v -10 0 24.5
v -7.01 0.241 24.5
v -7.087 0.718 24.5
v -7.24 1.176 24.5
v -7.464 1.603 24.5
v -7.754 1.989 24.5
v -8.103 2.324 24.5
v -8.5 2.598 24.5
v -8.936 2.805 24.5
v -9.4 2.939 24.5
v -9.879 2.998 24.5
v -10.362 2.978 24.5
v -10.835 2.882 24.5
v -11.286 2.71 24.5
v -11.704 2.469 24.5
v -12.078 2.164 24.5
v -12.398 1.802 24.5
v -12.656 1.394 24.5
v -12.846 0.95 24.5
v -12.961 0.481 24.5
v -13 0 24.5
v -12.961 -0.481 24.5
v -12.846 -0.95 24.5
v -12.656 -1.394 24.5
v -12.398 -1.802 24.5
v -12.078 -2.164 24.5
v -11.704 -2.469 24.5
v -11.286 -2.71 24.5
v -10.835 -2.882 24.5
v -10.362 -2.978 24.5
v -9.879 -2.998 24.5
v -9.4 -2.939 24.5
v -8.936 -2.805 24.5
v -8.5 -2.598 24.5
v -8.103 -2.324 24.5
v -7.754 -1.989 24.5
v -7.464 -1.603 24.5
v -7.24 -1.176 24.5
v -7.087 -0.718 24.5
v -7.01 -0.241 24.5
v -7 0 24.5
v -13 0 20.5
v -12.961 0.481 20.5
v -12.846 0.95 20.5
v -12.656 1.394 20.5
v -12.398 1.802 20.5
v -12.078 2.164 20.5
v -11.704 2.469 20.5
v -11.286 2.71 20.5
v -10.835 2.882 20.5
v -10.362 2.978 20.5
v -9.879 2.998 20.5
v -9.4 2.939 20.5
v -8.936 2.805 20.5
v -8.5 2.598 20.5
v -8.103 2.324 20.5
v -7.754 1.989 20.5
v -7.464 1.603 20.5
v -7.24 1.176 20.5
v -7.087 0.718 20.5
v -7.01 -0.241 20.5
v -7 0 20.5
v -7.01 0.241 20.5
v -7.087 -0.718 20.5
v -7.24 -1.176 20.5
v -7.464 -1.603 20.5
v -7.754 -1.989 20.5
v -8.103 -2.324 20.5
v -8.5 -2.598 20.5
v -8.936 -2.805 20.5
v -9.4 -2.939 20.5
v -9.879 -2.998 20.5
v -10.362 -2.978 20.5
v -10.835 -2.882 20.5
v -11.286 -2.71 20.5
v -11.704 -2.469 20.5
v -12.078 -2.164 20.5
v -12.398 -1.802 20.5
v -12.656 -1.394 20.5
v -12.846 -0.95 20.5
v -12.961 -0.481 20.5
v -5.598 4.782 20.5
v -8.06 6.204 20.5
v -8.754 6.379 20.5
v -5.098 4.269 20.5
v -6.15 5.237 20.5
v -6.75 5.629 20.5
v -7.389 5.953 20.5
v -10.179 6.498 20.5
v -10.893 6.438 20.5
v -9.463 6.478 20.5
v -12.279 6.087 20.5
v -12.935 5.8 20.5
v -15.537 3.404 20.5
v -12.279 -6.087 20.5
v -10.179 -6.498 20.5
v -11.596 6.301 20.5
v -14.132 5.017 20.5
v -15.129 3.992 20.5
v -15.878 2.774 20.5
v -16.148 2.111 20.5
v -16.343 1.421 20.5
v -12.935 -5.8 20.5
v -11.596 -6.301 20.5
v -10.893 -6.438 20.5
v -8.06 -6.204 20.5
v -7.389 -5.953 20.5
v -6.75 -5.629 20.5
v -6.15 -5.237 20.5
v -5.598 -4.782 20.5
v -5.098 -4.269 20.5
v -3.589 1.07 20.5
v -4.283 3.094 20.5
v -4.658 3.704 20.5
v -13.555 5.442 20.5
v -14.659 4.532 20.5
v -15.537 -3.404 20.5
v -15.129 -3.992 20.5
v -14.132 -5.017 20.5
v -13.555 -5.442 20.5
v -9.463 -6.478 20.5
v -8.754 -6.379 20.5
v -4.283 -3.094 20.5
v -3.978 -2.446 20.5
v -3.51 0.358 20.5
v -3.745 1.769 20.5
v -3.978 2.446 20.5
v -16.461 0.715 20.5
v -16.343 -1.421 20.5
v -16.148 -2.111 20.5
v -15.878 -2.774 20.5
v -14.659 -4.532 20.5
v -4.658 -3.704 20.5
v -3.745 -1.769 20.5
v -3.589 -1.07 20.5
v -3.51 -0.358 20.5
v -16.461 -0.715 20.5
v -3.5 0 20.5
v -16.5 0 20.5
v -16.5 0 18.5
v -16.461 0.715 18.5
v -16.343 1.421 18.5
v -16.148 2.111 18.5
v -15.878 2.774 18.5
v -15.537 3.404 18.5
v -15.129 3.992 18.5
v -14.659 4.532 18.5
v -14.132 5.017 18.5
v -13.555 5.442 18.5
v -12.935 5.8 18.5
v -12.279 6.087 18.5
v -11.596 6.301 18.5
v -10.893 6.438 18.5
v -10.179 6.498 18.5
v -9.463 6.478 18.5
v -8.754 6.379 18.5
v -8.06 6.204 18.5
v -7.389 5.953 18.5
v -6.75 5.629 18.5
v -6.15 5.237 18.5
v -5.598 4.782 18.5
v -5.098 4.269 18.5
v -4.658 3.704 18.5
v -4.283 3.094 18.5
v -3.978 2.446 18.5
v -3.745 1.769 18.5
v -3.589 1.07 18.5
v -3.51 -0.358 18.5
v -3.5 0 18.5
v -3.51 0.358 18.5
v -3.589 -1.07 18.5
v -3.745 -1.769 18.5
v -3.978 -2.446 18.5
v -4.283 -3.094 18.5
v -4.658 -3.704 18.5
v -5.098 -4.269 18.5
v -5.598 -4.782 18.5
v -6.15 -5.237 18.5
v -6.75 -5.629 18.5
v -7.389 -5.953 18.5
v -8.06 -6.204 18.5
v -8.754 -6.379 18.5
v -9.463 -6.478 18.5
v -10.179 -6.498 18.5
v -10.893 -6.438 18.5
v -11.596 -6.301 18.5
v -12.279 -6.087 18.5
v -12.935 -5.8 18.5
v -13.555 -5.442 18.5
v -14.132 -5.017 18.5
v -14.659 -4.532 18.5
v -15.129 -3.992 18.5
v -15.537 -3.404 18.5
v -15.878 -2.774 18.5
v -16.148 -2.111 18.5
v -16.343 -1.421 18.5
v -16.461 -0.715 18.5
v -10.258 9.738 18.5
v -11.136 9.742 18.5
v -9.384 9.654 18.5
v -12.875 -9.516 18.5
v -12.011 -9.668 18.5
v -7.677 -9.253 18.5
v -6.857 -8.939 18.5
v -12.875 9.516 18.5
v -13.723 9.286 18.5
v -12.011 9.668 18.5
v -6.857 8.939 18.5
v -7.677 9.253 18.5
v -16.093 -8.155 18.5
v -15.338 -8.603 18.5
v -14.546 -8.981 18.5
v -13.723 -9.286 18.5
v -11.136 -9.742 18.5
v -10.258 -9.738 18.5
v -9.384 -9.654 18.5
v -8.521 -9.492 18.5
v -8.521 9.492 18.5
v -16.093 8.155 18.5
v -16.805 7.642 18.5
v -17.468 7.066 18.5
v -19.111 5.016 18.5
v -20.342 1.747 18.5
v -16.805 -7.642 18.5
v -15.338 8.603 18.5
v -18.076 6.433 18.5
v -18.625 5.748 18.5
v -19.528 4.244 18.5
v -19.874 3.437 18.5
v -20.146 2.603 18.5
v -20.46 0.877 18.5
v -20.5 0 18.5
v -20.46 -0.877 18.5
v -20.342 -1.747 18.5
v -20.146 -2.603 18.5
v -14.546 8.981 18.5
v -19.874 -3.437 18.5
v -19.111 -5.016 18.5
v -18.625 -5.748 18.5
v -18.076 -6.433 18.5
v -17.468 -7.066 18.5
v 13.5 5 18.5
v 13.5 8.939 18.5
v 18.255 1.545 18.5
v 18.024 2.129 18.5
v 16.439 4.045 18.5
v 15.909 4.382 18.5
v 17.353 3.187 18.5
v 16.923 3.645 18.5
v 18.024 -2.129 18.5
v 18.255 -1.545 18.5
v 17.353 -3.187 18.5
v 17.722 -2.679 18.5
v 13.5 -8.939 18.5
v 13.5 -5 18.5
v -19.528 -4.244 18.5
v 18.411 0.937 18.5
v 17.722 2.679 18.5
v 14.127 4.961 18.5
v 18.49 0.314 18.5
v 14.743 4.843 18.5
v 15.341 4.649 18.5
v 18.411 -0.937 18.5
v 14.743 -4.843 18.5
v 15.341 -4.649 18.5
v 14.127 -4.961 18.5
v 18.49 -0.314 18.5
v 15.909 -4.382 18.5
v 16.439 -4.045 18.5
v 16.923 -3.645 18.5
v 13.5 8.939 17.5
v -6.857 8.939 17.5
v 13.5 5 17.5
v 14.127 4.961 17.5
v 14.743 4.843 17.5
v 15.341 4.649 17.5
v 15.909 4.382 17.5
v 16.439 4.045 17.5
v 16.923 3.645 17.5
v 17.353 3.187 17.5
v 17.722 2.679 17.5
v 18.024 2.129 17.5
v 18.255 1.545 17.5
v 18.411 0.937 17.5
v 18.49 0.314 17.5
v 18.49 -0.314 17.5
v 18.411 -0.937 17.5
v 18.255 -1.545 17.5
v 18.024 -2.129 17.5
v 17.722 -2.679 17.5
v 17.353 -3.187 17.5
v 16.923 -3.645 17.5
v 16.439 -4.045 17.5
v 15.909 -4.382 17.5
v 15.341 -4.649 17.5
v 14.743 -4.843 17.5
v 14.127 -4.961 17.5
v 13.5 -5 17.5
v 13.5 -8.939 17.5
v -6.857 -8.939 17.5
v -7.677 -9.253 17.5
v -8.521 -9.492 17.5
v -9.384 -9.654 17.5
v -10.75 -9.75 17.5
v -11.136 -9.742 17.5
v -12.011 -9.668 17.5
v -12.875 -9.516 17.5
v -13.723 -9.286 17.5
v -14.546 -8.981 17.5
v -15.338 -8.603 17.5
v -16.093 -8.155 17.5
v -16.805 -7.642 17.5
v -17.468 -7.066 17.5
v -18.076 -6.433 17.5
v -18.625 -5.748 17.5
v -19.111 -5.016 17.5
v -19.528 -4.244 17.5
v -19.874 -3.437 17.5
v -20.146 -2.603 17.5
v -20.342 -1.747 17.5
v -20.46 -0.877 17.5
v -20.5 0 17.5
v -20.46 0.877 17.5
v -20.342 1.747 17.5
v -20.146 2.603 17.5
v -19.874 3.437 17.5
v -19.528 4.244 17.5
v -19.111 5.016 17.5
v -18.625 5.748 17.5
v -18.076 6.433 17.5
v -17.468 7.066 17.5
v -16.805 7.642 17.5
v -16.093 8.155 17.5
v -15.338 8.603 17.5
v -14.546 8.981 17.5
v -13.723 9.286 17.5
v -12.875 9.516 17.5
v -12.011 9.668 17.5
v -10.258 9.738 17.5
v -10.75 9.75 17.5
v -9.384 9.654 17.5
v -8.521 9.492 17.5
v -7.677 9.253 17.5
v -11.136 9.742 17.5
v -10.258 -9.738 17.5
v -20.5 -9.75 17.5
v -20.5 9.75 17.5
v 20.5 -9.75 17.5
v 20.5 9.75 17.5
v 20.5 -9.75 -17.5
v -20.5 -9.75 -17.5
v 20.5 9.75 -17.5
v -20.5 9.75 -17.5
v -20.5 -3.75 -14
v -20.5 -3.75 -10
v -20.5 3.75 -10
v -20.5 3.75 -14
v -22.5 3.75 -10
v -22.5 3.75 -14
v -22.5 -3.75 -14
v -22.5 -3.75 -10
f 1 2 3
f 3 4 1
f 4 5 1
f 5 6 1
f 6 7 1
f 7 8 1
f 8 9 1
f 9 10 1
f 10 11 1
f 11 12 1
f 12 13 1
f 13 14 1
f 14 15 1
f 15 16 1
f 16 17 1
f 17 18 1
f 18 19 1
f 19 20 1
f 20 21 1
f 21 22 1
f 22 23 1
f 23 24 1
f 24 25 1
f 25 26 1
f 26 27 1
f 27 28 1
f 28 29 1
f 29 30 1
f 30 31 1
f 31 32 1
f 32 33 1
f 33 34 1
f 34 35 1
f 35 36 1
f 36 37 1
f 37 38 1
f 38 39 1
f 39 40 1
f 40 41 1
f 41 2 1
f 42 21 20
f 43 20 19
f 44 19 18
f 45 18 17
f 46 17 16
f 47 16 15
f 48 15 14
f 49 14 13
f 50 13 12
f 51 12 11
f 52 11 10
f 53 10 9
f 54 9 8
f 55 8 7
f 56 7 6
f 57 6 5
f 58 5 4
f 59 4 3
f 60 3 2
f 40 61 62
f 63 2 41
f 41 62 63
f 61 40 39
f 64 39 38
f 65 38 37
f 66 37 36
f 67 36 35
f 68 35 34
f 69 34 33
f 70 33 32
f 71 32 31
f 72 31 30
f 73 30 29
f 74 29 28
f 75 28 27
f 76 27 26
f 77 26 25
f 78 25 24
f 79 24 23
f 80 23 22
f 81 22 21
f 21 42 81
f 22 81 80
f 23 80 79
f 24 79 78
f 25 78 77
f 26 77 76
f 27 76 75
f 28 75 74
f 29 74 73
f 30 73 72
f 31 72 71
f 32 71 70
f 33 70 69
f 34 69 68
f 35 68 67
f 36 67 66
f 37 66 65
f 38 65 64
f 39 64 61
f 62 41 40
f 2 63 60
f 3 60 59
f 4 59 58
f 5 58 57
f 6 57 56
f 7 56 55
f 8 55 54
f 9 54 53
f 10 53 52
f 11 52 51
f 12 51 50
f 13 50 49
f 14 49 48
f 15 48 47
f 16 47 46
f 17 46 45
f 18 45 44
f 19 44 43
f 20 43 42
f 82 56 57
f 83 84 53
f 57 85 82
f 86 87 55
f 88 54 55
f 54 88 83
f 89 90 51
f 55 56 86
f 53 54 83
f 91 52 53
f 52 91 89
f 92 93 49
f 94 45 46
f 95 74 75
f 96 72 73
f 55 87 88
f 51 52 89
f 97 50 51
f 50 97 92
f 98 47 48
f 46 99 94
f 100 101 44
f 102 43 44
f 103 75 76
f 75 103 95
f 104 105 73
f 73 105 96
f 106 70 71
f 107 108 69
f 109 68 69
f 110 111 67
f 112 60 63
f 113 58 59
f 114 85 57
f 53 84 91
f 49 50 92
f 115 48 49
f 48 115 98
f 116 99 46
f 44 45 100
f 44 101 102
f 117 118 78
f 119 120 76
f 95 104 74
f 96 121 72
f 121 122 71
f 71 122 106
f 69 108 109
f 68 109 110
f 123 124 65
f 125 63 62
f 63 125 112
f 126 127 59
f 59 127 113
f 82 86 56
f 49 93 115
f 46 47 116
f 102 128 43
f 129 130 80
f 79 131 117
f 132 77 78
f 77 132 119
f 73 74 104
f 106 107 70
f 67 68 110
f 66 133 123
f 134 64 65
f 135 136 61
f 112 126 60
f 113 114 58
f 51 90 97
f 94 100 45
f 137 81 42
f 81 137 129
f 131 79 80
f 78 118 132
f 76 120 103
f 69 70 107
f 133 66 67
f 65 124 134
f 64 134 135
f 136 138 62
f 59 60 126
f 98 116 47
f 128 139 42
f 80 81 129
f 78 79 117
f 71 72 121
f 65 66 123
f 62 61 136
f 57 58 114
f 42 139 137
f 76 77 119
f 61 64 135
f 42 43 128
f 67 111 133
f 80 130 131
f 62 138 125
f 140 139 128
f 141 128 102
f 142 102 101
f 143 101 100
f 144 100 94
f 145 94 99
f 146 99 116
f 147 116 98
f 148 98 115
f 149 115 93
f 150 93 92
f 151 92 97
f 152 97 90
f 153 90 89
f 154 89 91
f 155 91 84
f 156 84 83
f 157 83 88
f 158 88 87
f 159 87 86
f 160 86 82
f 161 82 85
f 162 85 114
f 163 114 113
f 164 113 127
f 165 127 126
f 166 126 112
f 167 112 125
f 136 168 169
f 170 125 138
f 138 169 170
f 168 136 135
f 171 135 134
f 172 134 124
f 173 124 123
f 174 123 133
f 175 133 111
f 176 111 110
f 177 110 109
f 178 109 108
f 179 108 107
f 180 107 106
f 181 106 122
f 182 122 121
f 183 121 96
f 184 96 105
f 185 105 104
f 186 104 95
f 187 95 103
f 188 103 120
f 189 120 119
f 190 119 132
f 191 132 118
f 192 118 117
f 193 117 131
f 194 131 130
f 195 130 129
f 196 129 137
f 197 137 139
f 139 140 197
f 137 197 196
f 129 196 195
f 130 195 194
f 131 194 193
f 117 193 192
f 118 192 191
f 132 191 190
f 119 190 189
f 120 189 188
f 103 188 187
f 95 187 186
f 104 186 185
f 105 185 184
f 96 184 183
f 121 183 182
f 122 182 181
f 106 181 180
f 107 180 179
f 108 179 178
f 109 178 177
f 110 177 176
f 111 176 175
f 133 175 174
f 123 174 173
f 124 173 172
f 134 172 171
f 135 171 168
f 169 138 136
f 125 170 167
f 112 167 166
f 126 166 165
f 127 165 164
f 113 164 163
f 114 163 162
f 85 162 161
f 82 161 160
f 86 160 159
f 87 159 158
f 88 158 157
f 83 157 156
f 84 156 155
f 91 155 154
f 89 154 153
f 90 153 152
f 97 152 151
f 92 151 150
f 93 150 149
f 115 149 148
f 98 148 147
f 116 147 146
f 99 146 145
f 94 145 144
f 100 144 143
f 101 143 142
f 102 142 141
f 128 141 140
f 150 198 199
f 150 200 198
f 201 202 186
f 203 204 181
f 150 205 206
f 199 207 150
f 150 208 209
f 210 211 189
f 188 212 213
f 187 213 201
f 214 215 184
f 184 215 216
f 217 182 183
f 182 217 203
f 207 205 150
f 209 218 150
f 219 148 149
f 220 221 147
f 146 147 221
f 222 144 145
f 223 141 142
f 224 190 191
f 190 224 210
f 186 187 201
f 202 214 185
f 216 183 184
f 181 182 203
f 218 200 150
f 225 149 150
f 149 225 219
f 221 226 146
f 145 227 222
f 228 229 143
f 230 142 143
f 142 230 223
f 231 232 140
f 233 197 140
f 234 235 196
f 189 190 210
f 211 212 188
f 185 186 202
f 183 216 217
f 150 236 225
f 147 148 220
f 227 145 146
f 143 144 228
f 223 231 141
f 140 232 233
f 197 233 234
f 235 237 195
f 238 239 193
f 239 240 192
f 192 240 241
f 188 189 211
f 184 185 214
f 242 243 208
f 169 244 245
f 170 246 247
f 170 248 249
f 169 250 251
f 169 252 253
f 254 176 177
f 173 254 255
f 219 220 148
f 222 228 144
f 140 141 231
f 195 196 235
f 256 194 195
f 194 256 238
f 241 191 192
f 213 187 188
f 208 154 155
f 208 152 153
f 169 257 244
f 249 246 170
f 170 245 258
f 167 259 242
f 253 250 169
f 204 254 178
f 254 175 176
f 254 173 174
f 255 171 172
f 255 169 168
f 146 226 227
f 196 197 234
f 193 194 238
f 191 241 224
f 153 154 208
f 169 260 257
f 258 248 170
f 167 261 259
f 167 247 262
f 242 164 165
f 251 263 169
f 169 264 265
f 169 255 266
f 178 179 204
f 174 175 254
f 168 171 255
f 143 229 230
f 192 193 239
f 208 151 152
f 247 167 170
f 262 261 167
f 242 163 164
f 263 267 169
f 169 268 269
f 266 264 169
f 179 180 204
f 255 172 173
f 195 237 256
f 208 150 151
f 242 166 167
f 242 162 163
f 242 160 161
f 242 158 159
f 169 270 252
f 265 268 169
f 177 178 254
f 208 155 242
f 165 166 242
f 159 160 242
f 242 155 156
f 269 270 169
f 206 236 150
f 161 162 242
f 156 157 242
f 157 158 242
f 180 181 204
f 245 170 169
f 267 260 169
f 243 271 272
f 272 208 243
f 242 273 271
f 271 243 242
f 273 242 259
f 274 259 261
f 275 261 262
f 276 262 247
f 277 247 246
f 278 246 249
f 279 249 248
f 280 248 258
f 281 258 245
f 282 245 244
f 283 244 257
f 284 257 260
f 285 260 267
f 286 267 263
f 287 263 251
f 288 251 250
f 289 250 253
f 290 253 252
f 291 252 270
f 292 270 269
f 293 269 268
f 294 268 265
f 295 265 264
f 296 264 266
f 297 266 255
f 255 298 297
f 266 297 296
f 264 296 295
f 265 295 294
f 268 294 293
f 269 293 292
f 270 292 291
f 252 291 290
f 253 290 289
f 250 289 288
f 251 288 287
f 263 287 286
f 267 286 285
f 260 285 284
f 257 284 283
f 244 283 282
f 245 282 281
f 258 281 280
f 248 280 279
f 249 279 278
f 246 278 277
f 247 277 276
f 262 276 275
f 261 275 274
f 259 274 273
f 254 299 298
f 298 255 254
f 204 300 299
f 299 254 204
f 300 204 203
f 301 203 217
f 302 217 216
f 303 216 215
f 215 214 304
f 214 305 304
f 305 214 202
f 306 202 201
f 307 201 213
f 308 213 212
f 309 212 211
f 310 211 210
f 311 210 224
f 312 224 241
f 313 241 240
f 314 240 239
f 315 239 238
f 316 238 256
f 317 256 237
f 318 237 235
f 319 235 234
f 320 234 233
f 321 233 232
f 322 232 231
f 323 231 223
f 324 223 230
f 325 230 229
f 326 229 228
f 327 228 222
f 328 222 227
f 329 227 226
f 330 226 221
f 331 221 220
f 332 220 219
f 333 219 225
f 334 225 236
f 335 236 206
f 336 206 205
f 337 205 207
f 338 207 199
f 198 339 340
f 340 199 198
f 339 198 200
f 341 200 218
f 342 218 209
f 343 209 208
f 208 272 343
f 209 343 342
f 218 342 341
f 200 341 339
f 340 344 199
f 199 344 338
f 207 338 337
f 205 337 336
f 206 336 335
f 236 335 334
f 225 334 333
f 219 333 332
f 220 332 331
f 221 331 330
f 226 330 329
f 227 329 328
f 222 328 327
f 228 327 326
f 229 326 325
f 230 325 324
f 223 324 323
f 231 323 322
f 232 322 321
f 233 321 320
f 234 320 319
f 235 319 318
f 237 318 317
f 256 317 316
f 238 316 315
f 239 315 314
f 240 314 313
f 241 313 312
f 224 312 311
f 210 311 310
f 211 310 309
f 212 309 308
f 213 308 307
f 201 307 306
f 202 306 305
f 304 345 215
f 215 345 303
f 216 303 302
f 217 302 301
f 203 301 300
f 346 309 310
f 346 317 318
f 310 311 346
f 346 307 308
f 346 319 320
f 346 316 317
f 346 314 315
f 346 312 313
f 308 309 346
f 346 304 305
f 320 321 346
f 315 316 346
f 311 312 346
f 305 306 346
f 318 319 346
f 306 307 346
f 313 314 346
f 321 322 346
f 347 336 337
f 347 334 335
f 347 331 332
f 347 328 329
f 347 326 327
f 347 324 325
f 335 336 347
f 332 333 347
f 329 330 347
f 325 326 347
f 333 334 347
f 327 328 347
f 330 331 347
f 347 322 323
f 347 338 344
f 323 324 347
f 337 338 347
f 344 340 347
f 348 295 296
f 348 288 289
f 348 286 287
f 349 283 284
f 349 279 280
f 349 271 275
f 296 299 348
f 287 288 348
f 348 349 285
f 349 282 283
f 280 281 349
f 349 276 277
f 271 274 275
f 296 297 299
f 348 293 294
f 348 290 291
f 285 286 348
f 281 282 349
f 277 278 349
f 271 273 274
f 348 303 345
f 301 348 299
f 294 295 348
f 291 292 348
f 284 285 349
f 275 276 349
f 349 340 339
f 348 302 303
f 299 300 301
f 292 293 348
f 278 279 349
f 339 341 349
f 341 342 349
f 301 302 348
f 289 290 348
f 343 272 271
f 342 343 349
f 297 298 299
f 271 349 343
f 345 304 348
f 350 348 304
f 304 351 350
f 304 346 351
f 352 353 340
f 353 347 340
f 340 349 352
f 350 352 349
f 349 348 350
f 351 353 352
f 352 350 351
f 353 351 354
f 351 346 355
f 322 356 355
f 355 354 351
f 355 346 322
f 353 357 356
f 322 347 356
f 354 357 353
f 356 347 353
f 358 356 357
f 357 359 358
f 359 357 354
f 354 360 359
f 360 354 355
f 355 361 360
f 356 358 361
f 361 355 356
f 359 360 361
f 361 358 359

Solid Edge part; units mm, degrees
sketch "Sketch1" plane through (0, 0, 0) normal (0, -1, 0) x (1, 0, 0)
  line L0 (20.5, 17.5) -> (20.5, -17.5)
  line L1 (20.5, -17.5) -> (-20.5, -17.5)
  line L2 (-20.5, -17.5) -> (-20.5, 17.5)
  line L3 (-20.5, 17.5) -> (20.5, 17.5)
  dimension "D1" = 41
  dimension "D2" = 35
extrude "Protrusion1" add sketch "Sketch1" along normal mid plane 19.5
sketch "Sketch2" plane through (17.7914, 0, 17.5) normal (0, 0, 1) x (1, 0, 0)
  line L0 (-24.6483, 8.939) -> (-4.2914, 8.939)
  line L1 (-4.2914, 8.939) -> (-4.2914, 5)
  line L2 (-4.2914, -5) -> (-4.2914, -8.939)
  line L3 (-4.2914, -8.939) -> (-24.6483, -8.939)
  arc A0 (-24.6483, -8.939) -> (-24.6483, 8.939) centre (-28.5414, 0) cw
  arc A1 (-4.2914, 5) -> (-4.2914, -5) centre (-4.2914, 0) cw
  dimension "D1" = 4.2914
extrude "ProtrusiónExtruida_3" add sketch "Sketch2" along normal blind 1
sketch "Sketch3" plane through (16.3242, 0, 18.5) normal (0, 0, 1) x (1, 0, 0)
  circle A0 centre (-26.3242, 0) radius 6.5
  dimension "D1" = 10.5
  dimension "D2" = 13
extrude "ProtrusiónExtruida_4" add sketch "Sketch3" along normal blind 2
sketch "Sketch4" plane through (7.7914, 0, 20.5) normal (0, 0, 1) x (1, 0, 0)
  circle A0 centre (-17.7914, 0) radius 3
extrude "ProtrusiónExtruida_5" add sketch "Sketch4" along normal blind 4
sketch "Sketch5" plane through (-20.5, 0, 10.2776) normal (-1, 0, 0) x (0, 0, 1)
  line L0 (-24.2776, 3.75) -> (-24.2776, -3.75)
  line L1 (-20.2776, -3.75) -> (-24.2776, -3.75)
  line L2 (-20.2776, 3.75) -> (-20.2776, -3.75)
  line L3 (-24.2776, 3.75) -> (-20.2776, 3.75)
  dimension "D1" = 3.5
  dimension "D2" = 7.5
  dimension "D3" = 4
extrude "ProtrusiónExtruida_6" add sketch "Sketch5" along normal blind 2
